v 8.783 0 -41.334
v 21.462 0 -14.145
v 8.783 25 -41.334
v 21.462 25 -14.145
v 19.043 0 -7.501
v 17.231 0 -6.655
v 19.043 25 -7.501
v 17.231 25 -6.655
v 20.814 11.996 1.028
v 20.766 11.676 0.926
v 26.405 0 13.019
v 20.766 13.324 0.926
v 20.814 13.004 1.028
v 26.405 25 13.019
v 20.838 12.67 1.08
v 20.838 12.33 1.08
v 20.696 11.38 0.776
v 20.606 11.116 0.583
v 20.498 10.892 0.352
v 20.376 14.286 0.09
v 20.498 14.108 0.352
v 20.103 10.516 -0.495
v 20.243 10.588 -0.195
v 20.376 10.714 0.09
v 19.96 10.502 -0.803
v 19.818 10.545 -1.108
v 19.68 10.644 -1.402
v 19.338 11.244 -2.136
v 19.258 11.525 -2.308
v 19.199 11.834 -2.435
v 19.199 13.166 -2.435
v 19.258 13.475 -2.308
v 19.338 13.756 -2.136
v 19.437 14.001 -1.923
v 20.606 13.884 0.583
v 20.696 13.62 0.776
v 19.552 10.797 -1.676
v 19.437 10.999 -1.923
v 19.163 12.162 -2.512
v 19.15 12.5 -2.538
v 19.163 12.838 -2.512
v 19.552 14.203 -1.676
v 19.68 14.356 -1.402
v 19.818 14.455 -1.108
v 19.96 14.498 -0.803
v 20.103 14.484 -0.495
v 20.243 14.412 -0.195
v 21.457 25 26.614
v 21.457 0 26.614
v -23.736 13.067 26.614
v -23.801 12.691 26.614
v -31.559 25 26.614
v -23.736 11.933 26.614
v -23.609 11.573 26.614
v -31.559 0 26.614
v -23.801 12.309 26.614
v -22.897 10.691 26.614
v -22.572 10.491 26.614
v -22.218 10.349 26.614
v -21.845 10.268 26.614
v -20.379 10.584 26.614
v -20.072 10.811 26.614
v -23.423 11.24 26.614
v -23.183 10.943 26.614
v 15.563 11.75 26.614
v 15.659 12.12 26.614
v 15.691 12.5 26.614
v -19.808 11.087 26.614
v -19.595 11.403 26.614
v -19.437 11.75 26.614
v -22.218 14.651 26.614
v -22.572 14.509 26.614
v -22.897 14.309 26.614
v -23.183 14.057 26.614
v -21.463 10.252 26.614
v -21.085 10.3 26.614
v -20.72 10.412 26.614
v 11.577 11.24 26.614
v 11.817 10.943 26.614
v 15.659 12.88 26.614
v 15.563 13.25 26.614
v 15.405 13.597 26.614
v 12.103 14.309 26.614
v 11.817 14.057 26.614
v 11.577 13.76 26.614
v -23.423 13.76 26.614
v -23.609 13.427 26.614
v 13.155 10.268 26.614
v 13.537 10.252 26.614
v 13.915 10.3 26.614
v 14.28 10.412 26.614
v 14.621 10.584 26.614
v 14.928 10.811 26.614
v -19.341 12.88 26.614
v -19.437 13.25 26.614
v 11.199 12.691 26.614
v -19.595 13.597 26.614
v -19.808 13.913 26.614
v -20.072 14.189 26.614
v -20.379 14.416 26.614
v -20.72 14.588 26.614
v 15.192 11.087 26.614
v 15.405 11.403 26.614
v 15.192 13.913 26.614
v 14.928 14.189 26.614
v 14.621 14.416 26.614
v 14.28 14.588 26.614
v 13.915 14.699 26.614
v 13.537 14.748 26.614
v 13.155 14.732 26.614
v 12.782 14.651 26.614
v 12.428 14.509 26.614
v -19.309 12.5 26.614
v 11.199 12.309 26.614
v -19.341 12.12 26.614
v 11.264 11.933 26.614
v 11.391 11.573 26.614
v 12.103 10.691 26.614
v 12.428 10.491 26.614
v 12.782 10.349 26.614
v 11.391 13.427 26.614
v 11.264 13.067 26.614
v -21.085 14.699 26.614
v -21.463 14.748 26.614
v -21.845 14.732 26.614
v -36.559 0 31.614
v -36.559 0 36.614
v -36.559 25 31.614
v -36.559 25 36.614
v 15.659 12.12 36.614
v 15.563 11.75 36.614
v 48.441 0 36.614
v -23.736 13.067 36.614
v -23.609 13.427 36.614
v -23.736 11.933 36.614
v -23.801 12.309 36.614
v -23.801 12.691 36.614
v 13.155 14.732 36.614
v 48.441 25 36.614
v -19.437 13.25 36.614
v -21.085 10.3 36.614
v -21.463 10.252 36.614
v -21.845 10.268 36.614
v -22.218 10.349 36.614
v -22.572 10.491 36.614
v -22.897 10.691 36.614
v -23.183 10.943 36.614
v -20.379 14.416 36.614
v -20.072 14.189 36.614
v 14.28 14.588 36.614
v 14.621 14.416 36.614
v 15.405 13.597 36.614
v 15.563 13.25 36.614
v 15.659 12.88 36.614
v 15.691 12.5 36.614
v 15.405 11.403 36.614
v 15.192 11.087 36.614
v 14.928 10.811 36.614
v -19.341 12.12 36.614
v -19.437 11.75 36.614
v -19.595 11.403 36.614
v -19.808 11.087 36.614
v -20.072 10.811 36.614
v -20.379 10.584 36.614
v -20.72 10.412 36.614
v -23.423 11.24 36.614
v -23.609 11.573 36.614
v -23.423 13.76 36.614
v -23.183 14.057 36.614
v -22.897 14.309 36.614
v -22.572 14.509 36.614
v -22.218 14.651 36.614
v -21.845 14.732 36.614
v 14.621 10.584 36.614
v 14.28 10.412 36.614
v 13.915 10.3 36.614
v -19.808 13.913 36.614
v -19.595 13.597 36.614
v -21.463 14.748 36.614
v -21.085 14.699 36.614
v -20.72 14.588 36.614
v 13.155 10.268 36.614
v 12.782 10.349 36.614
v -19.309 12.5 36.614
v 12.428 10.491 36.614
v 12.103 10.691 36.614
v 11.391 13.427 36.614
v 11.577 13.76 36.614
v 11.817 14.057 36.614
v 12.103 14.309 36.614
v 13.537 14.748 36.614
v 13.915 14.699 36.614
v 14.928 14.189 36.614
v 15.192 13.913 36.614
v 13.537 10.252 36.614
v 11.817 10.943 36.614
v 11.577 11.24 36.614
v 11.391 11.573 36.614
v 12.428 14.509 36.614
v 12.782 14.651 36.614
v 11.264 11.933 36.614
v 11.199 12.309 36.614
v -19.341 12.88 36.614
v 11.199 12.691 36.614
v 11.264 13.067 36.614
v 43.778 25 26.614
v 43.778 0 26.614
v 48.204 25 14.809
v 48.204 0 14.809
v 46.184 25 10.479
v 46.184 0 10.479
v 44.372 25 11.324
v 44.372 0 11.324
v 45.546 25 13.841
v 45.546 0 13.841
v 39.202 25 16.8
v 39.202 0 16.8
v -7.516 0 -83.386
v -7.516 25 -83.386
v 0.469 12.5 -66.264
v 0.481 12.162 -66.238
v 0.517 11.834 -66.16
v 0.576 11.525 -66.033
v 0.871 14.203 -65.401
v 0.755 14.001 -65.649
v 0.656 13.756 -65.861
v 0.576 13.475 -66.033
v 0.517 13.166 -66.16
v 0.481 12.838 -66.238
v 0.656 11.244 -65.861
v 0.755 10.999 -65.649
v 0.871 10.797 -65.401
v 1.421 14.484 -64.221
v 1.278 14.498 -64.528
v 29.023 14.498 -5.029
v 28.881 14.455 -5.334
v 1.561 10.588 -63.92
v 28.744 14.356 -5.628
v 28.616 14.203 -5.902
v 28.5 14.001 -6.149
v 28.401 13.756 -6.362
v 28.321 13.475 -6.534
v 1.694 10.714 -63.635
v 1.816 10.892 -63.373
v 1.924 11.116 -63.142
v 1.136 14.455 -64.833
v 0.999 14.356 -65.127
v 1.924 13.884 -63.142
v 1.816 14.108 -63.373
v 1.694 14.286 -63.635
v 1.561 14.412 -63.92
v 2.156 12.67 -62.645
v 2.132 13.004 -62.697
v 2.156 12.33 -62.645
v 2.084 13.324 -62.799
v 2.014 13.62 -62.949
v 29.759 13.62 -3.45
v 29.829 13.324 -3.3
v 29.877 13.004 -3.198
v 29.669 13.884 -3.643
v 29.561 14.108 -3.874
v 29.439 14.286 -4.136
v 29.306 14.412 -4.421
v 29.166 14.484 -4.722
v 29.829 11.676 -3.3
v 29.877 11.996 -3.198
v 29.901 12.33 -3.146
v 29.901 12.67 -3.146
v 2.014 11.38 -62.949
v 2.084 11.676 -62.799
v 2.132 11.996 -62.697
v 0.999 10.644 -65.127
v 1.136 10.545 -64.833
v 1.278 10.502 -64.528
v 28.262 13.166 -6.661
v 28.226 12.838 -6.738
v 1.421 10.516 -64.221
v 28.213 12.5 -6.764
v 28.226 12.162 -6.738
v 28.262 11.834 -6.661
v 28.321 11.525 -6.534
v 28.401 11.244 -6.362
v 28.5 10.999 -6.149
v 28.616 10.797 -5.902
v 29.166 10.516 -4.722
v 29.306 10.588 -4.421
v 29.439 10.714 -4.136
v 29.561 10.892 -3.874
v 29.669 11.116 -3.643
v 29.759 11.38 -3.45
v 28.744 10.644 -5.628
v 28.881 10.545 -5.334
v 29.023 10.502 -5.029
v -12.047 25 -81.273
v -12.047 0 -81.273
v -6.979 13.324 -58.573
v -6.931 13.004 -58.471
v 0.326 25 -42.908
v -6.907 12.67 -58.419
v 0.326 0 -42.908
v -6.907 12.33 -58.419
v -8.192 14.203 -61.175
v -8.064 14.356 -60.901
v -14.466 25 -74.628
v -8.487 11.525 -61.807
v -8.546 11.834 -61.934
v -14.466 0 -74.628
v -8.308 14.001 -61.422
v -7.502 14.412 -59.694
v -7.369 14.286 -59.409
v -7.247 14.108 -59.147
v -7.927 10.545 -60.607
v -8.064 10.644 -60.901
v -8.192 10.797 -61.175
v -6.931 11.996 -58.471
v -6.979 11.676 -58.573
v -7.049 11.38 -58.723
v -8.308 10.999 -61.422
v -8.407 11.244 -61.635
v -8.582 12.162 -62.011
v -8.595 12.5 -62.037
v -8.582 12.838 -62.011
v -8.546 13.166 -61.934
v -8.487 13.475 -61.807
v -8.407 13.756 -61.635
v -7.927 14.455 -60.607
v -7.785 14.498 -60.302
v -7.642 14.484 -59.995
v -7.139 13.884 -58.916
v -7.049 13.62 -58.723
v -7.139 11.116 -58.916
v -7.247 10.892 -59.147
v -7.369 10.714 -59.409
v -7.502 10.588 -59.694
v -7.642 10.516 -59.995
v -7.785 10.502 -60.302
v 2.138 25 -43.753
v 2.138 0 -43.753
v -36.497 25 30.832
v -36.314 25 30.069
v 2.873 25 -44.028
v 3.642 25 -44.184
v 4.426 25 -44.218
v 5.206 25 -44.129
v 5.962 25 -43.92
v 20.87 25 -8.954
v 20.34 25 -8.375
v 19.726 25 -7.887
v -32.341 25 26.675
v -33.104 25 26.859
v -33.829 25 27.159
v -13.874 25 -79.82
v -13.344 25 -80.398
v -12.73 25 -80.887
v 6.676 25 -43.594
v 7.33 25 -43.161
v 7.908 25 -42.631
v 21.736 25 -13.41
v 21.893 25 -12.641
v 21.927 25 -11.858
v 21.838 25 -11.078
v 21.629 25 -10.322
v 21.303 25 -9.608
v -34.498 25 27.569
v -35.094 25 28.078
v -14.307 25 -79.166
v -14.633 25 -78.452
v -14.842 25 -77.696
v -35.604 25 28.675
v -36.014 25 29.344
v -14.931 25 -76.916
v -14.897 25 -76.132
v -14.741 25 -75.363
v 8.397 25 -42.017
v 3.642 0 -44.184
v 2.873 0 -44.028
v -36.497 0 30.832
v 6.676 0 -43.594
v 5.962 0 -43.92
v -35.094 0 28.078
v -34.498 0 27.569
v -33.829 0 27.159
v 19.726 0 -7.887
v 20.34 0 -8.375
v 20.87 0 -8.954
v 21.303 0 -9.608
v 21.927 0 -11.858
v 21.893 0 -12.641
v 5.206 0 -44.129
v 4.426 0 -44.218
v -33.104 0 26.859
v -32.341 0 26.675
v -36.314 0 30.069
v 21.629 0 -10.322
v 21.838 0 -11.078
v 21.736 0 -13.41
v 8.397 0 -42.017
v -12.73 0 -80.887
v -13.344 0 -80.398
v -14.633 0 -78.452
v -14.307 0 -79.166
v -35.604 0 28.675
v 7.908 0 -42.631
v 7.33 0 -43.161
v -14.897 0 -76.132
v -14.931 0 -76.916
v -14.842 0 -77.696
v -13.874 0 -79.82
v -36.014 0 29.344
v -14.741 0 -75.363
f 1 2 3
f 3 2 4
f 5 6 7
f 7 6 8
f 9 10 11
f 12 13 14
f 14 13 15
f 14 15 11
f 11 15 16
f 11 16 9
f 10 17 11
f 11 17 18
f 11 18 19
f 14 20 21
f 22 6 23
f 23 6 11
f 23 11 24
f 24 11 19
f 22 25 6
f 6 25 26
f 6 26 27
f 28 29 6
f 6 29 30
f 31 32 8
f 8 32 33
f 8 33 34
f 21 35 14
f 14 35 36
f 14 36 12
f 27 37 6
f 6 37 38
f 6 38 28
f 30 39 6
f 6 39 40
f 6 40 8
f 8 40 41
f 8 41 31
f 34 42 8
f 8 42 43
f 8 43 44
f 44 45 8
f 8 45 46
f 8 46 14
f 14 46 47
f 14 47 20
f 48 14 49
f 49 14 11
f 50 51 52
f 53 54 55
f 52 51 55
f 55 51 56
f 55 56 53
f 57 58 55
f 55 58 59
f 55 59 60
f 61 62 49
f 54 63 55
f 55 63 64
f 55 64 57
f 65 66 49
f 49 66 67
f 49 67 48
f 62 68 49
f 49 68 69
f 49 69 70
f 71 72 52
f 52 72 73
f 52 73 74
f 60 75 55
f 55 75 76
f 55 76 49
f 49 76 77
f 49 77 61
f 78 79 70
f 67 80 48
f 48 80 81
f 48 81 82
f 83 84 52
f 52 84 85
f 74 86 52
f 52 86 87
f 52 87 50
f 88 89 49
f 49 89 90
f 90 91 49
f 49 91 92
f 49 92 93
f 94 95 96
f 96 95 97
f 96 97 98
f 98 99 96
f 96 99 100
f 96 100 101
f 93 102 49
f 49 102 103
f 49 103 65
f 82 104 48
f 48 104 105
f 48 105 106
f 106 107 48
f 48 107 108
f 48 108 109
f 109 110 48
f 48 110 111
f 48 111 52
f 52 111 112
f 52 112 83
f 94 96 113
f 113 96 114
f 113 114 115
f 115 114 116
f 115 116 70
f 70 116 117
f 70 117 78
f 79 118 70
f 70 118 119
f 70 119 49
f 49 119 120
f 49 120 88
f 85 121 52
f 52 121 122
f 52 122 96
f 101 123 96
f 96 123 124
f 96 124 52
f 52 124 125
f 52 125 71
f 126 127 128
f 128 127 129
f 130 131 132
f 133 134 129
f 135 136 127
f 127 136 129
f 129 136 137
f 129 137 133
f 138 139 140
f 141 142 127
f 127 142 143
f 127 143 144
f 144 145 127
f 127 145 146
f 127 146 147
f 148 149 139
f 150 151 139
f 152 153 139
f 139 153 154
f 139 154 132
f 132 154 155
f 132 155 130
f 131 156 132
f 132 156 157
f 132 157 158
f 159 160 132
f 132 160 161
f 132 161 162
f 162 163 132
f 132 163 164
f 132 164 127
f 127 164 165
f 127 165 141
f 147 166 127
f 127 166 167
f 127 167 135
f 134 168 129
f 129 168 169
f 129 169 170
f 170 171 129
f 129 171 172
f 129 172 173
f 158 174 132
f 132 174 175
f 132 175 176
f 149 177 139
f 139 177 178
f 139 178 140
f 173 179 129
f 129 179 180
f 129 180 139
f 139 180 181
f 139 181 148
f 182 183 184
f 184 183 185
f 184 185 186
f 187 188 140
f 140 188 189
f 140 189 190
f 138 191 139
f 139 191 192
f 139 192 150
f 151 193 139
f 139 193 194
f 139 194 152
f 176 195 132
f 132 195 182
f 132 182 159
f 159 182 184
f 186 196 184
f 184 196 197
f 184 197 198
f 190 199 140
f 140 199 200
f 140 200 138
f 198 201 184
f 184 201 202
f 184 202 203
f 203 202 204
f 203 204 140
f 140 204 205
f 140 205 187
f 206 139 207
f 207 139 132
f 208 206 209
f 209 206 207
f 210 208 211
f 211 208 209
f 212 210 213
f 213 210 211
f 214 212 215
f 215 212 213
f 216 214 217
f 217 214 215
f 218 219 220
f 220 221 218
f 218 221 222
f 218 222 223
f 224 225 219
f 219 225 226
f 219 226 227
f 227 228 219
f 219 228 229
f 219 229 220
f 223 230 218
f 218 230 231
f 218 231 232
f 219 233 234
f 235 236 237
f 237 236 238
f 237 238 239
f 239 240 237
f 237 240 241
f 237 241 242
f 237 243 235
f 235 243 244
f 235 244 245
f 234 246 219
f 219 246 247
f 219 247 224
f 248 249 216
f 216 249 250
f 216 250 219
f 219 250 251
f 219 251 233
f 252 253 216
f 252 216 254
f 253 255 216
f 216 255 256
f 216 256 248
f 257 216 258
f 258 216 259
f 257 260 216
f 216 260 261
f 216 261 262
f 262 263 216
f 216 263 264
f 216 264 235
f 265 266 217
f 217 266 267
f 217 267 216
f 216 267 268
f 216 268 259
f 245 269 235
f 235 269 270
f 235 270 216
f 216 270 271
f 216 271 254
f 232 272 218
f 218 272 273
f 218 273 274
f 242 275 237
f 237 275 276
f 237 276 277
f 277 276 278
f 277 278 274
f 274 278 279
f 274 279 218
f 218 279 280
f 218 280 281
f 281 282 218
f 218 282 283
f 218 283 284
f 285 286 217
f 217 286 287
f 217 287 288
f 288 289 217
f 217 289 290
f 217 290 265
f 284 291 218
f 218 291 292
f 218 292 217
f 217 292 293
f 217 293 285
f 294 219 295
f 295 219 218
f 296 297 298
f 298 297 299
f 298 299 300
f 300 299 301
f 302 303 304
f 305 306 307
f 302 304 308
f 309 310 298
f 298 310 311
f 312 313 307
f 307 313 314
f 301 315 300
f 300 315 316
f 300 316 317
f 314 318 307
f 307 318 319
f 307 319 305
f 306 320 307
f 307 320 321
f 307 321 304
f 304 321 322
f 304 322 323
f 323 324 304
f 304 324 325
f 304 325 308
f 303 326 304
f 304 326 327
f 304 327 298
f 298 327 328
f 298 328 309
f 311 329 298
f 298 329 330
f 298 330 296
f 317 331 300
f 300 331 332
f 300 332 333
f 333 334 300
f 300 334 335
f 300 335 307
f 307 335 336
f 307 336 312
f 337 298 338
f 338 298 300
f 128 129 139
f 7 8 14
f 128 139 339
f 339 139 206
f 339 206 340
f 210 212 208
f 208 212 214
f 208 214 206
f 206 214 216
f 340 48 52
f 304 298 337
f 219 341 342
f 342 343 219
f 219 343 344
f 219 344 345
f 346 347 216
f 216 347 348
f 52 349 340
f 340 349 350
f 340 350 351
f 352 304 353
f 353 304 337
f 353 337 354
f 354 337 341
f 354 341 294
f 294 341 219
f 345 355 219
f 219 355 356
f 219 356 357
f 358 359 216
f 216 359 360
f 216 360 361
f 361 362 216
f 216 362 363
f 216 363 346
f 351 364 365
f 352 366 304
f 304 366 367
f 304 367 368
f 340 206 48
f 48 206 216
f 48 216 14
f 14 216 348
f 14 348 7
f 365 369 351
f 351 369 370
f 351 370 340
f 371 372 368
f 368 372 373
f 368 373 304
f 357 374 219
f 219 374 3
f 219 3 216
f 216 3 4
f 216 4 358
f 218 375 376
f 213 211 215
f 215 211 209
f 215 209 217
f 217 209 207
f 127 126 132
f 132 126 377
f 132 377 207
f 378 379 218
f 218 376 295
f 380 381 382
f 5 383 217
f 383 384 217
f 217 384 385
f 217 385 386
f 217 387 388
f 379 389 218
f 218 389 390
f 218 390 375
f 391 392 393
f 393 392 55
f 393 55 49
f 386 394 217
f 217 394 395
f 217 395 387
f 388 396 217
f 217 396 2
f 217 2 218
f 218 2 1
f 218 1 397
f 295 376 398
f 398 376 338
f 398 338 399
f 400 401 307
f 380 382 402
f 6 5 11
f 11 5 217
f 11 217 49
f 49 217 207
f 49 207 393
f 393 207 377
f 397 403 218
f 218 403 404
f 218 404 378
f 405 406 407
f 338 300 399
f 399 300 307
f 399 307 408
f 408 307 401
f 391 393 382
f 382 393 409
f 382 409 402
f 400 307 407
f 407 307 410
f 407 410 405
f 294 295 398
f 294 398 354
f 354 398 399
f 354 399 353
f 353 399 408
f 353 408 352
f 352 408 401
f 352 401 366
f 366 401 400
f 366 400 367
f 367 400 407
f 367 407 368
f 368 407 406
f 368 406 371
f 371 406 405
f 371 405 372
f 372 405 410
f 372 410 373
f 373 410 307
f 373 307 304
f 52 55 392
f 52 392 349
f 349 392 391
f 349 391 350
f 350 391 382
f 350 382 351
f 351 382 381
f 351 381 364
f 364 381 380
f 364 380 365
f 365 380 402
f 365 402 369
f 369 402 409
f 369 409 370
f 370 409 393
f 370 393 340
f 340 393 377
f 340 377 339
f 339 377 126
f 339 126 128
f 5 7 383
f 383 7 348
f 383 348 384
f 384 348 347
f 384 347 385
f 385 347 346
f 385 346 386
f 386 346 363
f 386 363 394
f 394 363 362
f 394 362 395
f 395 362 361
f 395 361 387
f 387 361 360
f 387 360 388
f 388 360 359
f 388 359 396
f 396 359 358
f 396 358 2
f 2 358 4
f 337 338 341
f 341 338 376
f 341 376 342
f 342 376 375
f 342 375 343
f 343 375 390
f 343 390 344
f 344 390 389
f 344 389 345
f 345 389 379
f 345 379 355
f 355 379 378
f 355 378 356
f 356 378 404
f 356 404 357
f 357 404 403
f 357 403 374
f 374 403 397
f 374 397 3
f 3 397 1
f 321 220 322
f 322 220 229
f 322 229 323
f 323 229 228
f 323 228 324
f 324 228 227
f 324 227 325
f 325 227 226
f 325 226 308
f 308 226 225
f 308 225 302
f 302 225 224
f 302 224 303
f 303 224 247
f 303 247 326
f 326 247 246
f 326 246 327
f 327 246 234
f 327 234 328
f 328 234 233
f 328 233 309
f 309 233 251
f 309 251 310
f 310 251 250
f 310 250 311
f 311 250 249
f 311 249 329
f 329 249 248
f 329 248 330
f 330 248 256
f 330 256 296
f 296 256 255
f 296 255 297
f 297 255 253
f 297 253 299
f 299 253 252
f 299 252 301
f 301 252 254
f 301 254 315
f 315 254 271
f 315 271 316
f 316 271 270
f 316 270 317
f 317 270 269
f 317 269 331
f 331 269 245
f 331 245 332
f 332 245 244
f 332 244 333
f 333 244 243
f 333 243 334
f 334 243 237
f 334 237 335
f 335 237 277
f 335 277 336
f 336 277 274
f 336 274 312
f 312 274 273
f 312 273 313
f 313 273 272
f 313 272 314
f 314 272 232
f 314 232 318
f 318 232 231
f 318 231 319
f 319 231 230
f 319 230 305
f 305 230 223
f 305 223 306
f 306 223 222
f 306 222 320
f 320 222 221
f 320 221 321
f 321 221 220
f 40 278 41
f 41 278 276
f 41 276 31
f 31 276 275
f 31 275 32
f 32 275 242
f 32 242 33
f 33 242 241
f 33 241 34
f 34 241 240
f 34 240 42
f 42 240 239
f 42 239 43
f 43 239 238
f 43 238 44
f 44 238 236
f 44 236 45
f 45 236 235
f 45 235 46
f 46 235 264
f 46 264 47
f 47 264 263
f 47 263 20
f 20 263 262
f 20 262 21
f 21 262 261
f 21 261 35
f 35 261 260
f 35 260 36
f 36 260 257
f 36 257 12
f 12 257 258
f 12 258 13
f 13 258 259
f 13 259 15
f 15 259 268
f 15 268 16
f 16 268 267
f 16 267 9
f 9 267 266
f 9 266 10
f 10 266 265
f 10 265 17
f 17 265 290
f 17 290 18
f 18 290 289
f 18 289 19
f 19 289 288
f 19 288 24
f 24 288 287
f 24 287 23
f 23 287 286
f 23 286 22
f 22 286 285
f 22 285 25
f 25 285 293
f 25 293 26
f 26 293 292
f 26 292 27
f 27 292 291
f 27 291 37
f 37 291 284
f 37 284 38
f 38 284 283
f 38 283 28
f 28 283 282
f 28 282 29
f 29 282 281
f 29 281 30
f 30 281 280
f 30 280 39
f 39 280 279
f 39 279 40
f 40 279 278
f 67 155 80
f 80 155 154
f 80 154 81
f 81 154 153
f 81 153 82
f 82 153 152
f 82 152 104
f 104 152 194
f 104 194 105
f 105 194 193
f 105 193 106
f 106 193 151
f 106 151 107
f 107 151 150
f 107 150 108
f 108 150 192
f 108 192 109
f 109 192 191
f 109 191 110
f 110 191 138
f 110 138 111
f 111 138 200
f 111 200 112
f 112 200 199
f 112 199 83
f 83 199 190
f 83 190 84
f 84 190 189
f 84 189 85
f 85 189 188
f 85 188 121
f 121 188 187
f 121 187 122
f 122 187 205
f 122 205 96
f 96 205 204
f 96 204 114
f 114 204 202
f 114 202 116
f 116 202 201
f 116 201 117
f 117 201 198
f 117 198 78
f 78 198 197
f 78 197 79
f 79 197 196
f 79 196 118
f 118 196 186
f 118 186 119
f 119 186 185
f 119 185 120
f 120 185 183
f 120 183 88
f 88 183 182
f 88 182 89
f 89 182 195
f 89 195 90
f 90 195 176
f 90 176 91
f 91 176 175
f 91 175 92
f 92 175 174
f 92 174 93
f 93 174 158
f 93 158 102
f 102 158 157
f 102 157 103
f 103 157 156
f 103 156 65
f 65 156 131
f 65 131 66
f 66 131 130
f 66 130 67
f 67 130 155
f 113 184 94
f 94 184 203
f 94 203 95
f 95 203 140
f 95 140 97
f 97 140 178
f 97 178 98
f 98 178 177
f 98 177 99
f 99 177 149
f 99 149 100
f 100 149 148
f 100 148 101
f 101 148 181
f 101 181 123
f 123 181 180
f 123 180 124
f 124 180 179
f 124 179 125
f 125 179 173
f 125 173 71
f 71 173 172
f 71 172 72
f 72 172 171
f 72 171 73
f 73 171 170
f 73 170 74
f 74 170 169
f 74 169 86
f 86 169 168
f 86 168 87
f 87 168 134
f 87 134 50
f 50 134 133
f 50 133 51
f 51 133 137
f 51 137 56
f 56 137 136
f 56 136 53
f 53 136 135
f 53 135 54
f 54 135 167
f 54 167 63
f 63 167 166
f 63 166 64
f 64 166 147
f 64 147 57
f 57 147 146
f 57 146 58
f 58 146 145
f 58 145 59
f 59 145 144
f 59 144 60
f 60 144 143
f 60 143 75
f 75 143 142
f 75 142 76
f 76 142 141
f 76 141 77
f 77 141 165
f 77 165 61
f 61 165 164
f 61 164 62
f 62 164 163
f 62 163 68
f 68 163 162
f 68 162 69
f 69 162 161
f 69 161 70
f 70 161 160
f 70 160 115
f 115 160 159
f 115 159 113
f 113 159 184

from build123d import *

# Parameters (mm, degrees)
BOSS_EXTRUDE1_DEPTH = 25
FILLET3_R           = 5
FILLET4_R           = 5
FILLET6_R           = 5
FILLET7_R           = 5
SKETCH3_R           = 2
CUT_EXTRUDE1_DEPTH  = 10
SKETCH4_R           = 2.25
CUT_EXTRUDE2_DEPTH  = 10


with BuildPart() as part:
    # Sketch1 → Boss-Extrude1 (new body)
    with BuildSketch(Plane(origin=(0, 0, 0), x_dir=(1, 0, 0), z_dir=(0, 1, 0))):
        Polygon((-36.558892084, -26.613857404), (-36.558892084, -36.613857404), (48.441107916, -36.613857404), (43.778031334, -26.613857404), (48.203540535, -14.808578263), (46.184421194, -10.478562864), (44.37180562, -11.323799388), (45.545688437, -13.841199212), (39.201533928, -16.799527044), (-7.515811063, 83.386142596), (-16.578888933, 79.159959979), (0.325841536, 42.907648497), (6.669996046, 45.86597633), (23.574726515, 9.613664848), (17.230572006, 6.655337016), (26.404978218, -13.019240598), (21.456942355, -26.613857404), align=None)
    extrude(amount=BOSS_EXTRUDE1_DEPTH)

    # Fillet3
    fillet3_edges = [part.edges().sort_by_distance(p)[0] for p in [
        (-16.578888933, 12.5, -79.159959979),
    ]]
    fillet(fillet3_edges, radius=FILLET3_R)

    # Fillet4
    fillet4_edges = [part.edges().sort_by_distance(p)[0] for p in [
        (-36.558892084, 12.5, 26.613857404),
    ]]
    fillet(fillet4_edges, radius=FILLET4_R)

    # Fillet6
    fillet6_edges = [part.edges().sort_by_distance(p)[0] for p in [
        (23.574726515, 12.5, -9.613664848),
    ]]
    fillet(fillet6_edges, radius=FILLET6_R)

    # Fillet7
    fillet7_edges = [part.edges().sort_by_distance(p)[0] for p in [
        (6.669996046, 12.5, -45.86597633),
    ]]
    fillet(fillet7_edges, radius=FILLET7_R)

    # Sketch3 → Cut-Extrude1 (cut)
    with BuildSketch(Plane(origin=(25.765304939, 0, -12.014559008), x_dir=(-0.422618261740704, 0, -0.9063077870366479), z_dir=(0.9063077870366479, 0, -0.422618261740704))):
        with Locations((57.857173695, 12.5)):
            Circle(SKETCH3_R)
        with Locations((-7.792826305, 12.5)):
            Circle(SKETCH3_R)
    extrude(amount=-CUT_EXTRUDE1_DEPTH, mode=Mode.SUBTRACT)

    # Sketch4 → Cut-Extrude2 (cut)
    with BuildSketch(Plane.XY.offset(36.613857404)):
        with Locations((-21.558892084, 12.5)):
            Circle(SKETCH4_R)
        with Locations((13.441107916, 12.5)):
            Circle(SKETCH4_R)
    extrude(amount=-CUT_EXTRUDE2_DEPTH, mode=Mode.SUBTRACT)


solid = part.part
